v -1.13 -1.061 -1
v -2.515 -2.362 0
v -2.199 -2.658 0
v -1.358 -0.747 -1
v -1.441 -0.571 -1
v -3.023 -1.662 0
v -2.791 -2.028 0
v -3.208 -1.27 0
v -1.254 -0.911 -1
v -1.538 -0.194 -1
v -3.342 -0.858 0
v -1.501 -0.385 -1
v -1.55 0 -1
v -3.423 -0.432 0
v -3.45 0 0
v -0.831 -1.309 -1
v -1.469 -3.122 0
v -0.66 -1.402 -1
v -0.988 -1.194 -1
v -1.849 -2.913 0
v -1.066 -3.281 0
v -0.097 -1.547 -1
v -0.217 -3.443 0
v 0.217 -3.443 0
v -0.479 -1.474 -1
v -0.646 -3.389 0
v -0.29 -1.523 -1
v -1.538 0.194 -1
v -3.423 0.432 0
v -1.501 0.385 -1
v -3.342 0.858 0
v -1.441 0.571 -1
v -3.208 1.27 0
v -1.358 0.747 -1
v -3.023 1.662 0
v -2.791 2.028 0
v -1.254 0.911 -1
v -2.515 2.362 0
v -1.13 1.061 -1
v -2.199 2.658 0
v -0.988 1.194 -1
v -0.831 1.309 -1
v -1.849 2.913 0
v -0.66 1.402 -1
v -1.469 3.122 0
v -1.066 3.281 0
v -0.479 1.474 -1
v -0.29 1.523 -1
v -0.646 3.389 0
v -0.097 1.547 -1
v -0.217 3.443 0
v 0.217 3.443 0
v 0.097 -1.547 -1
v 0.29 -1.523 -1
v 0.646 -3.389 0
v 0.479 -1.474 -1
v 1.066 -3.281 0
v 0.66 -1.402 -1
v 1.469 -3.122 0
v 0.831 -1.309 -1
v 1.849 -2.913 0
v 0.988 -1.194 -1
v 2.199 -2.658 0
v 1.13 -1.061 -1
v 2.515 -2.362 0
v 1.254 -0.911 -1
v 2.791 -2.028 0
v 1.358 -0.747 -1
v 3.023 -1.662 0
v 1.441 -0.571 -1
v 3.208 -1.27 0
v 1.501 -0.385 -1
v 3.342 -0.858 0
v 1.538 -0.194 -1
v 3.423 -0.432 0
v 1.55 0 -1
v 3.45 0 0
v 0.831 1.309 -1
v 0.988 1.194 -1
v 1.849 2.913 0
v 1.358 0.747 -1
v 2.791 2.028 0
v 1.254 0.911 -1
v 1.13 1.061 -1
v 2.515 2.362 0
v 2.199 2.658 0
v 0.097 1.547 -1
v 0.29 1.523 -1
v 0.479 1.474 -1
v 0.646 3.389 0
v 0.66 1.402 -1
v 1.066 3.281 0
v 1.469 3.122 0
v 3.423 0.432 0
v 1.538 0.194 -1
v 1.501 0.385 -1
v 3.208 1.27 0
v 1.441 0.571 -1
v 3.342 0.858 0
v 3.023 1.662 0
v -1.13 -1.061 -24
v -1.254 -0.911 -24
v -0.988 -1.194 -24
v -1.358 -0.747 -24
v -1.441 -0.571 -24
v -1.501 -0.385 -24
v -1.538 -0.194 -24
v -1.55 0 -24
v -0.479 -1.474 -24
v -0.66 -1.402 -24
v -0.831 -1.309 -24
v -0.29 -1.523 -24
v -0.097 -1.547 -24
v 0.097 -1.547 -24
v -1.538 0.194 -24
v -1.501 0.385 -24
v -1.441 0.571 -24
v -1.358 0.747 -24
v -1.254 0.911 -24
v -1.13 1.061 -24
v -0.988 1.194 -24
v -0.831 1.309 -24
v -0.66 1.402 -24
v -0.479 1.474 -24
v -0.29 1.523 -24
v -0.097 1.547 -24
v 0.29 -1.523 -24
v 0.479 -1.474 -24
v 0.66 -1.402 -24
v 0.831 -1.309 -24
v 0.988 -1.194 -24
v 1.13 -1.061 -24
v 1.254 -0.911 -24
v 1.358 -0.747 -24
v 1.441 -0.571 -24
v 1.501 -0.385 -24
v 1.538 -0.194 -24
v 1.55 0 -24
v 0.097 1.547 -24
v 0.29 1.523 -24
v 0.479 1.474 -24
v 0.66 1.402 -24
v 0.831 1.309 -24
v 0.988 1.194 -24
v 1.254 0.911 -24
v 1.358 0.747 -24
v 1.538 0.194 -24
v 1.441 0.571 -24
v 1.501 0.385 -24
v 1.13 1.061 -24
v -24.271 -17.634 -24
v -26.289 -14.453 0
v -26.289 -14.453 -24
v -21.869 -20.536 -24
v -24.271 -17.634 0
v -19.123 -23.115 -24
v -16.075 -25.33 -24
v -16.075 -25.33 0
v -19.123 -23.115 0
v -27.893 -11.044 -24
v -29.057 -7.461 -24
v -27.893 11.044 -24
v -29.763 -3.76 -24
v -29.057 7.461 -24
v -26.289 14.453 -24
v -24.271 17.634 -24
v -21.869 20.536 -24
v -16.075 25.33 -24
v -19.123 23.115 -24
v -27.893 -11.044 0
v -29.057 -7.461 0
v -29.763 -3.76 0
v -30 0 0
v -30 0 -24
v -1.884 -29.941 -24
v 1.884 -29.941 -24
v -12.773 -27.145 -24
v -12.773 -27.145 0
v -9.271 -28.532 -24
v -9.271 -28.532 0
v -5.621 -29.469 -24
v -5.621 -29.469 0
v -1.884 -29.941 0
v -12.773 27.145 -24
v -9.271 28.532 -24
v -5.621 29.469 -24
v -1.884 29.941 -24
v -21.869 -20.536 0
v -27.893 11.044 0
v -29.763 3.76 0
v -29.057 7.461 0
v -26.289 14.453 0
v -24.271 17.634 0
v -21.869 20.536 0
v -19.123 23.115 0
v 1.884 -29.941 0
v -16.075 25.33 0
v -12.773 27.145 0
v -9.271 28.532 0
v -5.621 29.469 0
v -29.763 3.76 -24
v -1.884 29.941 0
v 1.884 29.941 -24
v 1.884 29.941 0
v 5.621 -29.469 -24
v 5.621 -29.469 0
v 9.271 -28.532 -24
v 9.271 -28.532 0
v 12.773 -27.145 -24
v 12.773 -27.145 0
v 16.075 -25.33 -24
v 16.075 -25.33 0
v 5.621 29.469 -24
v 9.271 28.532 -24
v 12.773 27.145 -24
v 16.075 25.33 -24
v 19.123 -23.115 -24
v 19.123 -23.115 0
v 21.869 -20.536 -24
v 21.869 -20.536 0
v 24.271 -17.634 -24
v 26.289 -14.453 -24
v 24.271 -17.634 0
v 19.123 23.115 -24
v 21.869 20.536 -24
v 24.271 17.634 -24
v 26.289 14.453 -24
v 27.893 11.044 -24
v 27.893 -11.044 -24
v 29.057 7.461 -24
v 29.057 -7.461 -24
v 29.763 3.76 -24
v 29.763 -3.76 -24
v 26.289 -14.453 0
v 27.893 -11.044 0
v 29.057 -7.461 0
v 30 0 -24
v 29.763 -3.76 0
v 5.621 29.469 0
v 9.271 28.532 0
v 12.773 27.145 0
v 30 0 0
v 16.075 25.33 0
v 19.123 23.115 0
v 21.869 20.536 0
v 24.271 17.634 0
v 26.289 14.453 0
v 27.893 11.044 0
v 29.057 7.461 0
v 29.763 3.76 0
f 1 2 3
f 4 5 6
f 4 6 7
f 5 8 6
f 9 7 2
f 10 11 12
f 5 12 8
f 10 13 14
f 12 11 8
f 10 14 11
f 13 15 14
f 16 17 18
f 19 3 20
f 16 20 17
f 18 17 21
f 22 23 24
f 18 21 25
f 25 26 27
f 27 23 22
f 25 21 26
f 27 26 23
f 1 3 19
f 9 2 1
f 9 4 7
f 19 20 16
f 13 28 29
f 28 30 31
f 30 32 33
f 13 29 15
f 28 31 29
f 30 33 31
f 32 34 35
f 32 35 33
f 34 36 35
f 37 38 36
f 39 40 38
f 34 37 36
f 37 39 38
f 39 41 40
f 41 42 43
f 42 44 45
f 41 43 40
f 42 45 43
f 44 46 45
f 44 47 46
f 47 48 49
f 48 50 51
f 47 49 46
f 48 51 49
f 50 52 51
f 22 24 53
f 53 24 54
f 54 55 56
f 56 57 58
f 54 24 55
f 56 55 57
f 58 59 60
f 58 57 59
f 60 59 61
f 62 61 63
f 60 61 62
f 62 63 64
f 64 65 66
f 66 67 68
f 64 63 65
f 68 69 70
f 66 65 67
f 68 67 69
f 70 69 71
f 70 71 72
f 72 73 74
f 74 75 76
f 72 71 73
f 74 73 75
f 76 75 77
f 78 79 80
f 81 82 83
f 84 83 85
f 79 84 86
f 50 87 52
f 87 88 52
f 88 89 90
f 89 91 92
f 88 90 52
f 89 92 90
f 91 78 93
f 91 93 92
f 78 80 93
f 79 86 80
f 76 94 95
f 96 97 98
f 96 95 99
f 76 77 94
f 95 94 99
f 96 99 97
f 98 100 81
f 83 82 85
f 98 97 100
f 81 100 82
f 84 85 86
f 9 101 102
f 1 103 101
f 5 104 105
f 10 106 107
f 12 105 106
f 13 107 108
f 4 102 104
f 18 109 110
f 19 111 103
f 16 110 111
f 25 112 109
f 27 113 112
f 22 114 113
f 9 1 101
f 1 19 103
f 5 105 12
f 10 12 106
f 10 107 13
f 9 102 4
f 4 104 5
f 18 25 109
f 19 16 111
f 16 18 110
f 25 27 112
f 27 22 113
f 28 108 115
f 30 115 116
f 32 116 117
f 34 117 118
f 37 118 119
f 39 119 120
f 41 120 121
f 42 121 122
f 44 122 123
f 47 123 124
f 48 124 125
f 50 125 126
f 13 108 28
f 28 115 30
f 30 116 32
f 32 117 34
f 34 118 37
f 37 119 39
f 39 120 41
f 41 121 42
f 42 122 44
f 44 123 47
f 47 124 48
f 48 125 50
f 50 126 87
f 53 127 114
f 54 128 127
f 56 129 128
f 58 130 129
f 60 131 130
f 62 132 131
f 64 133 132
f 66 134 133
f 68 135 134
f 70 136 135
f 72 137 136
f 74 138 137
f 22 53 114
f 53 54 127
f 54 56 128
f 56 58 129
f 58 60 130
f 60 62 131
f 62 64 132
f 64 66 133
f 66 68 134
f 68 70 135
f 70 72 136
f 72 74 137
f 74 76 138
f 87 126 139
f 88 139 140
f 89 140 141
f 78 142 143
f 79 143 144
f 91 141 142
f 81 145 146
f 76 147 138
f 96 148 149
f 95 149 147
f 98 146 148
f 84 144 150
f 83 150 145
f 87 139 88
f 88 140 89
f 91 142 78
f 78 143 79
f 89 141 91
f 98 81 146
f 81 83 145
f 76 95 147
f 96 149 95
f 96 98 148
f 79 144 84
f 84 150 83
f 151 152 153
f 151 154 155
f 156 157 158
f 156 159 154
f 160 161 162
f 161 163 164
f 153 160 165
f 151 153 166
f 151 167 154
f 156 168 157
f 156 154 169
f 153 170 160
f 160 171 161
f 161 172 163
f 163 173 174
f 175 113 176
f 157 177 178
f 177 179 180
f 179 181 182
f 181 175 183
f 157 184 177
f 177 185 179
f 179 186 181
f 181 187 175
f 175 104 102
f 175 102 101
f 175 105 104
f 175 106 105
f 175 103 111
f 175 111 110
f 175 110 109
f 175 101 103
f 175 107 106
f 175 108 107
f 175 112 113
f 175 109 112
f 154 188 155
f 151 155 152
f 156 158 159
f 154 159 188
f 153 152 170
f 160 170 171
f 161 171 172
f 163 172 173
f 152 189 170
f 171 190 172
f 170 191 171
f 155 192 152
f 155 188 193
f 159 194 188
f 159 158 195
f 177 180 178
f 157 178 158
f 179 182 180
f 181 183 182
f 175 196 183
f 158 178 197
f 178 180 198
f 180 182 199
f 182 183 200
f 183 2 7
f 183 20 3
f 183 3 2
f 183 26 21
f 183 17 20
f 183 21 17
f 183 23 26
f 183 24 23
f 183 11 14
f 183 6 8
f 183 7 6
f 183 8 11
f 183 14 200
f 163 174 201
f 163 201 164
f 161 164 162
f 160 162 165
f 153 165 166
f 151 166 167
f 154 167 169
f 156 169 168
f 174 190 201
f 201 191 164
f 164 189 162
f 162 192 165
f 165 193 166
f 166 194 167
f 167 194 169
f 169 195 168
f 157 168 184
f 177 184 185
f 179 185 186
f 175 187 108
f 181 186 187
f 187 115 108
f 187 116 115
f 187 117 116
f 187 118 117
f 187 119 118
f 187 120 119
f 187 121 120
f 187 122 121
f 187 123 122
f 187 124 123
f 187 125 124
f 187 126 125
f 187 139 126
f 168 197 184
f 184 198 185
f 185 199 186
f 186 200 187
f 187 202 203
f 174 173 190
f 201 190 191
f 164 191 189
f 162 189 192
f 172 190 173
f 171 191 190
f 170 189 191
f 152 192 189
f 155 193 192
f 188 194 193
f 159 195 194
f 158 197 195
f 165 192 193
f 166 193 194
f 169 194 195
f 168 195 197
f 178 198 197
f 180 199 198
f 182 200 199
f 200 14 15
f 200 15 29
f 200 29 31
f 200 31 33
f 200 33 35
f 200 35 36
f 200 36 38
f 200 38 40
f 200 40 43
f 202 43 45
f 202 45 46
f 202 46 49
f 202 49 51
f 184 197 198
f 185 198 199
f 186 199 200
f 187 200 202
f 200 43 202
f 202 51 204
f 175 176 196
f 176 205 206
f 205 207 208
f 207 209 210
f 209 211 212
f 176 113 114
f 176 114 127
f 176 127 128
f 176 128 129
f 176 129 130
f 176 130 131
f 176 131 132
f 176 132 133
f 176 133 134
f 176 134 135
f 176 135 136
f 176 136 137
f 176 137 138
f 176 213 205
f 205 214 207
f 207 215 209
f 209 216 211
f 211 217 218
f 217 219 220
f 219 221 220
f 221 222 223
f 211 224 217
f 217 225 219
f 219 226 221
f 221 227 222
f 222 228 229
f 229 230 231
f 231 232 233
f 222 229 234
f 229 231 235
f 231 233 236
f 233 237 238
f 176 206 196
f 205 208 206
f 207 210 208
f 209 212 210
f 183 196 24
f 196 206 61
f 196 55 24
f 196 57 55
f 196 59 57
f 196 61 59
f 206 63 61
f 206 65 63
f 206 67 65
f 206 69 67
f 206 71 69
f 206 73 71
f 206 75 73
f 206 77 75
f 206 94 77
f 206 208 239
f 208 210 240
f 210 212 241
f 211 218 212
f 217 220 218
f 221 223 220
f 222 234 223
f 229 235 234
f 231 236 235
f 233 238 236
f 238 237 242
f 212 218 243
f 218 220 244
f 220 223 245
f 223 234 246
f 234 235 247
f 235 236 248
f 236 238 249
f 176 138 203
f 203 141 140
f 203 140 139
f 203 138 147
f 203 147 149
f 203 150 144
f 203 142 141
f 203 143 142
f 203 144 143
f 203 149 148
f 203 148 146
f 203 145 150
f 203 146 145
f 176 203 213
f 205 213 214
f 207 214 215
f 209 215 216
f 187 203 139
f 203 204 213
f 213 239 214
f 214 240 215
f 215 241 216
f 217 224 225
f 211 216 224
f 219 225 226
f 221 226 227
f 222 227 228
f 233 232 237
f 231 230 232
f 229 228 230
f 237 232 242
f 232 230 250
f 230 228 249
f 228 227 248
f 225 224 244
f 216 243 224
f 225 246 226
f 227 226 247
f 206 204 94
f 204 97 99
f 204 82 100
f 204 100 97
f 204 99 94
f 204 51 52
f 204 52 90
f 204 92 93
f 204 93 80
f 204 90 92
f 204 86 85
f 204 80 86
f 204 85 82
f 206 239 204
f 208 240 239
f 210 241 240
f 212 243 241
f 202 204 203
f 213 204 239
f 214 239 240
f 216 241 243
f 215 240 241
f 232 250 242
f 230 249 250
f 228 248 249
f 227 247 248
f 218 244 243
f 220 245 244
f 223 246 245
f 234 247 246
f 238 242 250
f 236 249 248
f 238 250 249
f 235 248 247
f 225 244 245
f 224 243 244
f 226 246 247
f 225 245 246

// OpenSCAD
$fn = 50;

difference() {
	union() {
		translate(v = [0, 0, -24.0]) {
			cylinder(h = 24, r = 30.0);
		}
	}
	union() {
		translate(v = [0, 0, 0]) {
			rotate(a = [0, 0, 0]) {
				difference() {
					union() {
						translate(v = [0, 0, -27.0]) {
							cylinder(h = 27, r = 1.25);
						}
						translate(v = [0, 0, -1.0]) {
							cylinder(h = 1.0, r1 = 1.55, r2 = 3.45);
						}
						translate(v = [0, 0, -27.0]) {
							cylinder(h = 27, r = 1.55);
						}
						translate(v = [0, 0, -27.0]) {
							cylinder(h = 27, r = 1.25);
						}
					}
					union();
				}
			}
		}
	}
}
